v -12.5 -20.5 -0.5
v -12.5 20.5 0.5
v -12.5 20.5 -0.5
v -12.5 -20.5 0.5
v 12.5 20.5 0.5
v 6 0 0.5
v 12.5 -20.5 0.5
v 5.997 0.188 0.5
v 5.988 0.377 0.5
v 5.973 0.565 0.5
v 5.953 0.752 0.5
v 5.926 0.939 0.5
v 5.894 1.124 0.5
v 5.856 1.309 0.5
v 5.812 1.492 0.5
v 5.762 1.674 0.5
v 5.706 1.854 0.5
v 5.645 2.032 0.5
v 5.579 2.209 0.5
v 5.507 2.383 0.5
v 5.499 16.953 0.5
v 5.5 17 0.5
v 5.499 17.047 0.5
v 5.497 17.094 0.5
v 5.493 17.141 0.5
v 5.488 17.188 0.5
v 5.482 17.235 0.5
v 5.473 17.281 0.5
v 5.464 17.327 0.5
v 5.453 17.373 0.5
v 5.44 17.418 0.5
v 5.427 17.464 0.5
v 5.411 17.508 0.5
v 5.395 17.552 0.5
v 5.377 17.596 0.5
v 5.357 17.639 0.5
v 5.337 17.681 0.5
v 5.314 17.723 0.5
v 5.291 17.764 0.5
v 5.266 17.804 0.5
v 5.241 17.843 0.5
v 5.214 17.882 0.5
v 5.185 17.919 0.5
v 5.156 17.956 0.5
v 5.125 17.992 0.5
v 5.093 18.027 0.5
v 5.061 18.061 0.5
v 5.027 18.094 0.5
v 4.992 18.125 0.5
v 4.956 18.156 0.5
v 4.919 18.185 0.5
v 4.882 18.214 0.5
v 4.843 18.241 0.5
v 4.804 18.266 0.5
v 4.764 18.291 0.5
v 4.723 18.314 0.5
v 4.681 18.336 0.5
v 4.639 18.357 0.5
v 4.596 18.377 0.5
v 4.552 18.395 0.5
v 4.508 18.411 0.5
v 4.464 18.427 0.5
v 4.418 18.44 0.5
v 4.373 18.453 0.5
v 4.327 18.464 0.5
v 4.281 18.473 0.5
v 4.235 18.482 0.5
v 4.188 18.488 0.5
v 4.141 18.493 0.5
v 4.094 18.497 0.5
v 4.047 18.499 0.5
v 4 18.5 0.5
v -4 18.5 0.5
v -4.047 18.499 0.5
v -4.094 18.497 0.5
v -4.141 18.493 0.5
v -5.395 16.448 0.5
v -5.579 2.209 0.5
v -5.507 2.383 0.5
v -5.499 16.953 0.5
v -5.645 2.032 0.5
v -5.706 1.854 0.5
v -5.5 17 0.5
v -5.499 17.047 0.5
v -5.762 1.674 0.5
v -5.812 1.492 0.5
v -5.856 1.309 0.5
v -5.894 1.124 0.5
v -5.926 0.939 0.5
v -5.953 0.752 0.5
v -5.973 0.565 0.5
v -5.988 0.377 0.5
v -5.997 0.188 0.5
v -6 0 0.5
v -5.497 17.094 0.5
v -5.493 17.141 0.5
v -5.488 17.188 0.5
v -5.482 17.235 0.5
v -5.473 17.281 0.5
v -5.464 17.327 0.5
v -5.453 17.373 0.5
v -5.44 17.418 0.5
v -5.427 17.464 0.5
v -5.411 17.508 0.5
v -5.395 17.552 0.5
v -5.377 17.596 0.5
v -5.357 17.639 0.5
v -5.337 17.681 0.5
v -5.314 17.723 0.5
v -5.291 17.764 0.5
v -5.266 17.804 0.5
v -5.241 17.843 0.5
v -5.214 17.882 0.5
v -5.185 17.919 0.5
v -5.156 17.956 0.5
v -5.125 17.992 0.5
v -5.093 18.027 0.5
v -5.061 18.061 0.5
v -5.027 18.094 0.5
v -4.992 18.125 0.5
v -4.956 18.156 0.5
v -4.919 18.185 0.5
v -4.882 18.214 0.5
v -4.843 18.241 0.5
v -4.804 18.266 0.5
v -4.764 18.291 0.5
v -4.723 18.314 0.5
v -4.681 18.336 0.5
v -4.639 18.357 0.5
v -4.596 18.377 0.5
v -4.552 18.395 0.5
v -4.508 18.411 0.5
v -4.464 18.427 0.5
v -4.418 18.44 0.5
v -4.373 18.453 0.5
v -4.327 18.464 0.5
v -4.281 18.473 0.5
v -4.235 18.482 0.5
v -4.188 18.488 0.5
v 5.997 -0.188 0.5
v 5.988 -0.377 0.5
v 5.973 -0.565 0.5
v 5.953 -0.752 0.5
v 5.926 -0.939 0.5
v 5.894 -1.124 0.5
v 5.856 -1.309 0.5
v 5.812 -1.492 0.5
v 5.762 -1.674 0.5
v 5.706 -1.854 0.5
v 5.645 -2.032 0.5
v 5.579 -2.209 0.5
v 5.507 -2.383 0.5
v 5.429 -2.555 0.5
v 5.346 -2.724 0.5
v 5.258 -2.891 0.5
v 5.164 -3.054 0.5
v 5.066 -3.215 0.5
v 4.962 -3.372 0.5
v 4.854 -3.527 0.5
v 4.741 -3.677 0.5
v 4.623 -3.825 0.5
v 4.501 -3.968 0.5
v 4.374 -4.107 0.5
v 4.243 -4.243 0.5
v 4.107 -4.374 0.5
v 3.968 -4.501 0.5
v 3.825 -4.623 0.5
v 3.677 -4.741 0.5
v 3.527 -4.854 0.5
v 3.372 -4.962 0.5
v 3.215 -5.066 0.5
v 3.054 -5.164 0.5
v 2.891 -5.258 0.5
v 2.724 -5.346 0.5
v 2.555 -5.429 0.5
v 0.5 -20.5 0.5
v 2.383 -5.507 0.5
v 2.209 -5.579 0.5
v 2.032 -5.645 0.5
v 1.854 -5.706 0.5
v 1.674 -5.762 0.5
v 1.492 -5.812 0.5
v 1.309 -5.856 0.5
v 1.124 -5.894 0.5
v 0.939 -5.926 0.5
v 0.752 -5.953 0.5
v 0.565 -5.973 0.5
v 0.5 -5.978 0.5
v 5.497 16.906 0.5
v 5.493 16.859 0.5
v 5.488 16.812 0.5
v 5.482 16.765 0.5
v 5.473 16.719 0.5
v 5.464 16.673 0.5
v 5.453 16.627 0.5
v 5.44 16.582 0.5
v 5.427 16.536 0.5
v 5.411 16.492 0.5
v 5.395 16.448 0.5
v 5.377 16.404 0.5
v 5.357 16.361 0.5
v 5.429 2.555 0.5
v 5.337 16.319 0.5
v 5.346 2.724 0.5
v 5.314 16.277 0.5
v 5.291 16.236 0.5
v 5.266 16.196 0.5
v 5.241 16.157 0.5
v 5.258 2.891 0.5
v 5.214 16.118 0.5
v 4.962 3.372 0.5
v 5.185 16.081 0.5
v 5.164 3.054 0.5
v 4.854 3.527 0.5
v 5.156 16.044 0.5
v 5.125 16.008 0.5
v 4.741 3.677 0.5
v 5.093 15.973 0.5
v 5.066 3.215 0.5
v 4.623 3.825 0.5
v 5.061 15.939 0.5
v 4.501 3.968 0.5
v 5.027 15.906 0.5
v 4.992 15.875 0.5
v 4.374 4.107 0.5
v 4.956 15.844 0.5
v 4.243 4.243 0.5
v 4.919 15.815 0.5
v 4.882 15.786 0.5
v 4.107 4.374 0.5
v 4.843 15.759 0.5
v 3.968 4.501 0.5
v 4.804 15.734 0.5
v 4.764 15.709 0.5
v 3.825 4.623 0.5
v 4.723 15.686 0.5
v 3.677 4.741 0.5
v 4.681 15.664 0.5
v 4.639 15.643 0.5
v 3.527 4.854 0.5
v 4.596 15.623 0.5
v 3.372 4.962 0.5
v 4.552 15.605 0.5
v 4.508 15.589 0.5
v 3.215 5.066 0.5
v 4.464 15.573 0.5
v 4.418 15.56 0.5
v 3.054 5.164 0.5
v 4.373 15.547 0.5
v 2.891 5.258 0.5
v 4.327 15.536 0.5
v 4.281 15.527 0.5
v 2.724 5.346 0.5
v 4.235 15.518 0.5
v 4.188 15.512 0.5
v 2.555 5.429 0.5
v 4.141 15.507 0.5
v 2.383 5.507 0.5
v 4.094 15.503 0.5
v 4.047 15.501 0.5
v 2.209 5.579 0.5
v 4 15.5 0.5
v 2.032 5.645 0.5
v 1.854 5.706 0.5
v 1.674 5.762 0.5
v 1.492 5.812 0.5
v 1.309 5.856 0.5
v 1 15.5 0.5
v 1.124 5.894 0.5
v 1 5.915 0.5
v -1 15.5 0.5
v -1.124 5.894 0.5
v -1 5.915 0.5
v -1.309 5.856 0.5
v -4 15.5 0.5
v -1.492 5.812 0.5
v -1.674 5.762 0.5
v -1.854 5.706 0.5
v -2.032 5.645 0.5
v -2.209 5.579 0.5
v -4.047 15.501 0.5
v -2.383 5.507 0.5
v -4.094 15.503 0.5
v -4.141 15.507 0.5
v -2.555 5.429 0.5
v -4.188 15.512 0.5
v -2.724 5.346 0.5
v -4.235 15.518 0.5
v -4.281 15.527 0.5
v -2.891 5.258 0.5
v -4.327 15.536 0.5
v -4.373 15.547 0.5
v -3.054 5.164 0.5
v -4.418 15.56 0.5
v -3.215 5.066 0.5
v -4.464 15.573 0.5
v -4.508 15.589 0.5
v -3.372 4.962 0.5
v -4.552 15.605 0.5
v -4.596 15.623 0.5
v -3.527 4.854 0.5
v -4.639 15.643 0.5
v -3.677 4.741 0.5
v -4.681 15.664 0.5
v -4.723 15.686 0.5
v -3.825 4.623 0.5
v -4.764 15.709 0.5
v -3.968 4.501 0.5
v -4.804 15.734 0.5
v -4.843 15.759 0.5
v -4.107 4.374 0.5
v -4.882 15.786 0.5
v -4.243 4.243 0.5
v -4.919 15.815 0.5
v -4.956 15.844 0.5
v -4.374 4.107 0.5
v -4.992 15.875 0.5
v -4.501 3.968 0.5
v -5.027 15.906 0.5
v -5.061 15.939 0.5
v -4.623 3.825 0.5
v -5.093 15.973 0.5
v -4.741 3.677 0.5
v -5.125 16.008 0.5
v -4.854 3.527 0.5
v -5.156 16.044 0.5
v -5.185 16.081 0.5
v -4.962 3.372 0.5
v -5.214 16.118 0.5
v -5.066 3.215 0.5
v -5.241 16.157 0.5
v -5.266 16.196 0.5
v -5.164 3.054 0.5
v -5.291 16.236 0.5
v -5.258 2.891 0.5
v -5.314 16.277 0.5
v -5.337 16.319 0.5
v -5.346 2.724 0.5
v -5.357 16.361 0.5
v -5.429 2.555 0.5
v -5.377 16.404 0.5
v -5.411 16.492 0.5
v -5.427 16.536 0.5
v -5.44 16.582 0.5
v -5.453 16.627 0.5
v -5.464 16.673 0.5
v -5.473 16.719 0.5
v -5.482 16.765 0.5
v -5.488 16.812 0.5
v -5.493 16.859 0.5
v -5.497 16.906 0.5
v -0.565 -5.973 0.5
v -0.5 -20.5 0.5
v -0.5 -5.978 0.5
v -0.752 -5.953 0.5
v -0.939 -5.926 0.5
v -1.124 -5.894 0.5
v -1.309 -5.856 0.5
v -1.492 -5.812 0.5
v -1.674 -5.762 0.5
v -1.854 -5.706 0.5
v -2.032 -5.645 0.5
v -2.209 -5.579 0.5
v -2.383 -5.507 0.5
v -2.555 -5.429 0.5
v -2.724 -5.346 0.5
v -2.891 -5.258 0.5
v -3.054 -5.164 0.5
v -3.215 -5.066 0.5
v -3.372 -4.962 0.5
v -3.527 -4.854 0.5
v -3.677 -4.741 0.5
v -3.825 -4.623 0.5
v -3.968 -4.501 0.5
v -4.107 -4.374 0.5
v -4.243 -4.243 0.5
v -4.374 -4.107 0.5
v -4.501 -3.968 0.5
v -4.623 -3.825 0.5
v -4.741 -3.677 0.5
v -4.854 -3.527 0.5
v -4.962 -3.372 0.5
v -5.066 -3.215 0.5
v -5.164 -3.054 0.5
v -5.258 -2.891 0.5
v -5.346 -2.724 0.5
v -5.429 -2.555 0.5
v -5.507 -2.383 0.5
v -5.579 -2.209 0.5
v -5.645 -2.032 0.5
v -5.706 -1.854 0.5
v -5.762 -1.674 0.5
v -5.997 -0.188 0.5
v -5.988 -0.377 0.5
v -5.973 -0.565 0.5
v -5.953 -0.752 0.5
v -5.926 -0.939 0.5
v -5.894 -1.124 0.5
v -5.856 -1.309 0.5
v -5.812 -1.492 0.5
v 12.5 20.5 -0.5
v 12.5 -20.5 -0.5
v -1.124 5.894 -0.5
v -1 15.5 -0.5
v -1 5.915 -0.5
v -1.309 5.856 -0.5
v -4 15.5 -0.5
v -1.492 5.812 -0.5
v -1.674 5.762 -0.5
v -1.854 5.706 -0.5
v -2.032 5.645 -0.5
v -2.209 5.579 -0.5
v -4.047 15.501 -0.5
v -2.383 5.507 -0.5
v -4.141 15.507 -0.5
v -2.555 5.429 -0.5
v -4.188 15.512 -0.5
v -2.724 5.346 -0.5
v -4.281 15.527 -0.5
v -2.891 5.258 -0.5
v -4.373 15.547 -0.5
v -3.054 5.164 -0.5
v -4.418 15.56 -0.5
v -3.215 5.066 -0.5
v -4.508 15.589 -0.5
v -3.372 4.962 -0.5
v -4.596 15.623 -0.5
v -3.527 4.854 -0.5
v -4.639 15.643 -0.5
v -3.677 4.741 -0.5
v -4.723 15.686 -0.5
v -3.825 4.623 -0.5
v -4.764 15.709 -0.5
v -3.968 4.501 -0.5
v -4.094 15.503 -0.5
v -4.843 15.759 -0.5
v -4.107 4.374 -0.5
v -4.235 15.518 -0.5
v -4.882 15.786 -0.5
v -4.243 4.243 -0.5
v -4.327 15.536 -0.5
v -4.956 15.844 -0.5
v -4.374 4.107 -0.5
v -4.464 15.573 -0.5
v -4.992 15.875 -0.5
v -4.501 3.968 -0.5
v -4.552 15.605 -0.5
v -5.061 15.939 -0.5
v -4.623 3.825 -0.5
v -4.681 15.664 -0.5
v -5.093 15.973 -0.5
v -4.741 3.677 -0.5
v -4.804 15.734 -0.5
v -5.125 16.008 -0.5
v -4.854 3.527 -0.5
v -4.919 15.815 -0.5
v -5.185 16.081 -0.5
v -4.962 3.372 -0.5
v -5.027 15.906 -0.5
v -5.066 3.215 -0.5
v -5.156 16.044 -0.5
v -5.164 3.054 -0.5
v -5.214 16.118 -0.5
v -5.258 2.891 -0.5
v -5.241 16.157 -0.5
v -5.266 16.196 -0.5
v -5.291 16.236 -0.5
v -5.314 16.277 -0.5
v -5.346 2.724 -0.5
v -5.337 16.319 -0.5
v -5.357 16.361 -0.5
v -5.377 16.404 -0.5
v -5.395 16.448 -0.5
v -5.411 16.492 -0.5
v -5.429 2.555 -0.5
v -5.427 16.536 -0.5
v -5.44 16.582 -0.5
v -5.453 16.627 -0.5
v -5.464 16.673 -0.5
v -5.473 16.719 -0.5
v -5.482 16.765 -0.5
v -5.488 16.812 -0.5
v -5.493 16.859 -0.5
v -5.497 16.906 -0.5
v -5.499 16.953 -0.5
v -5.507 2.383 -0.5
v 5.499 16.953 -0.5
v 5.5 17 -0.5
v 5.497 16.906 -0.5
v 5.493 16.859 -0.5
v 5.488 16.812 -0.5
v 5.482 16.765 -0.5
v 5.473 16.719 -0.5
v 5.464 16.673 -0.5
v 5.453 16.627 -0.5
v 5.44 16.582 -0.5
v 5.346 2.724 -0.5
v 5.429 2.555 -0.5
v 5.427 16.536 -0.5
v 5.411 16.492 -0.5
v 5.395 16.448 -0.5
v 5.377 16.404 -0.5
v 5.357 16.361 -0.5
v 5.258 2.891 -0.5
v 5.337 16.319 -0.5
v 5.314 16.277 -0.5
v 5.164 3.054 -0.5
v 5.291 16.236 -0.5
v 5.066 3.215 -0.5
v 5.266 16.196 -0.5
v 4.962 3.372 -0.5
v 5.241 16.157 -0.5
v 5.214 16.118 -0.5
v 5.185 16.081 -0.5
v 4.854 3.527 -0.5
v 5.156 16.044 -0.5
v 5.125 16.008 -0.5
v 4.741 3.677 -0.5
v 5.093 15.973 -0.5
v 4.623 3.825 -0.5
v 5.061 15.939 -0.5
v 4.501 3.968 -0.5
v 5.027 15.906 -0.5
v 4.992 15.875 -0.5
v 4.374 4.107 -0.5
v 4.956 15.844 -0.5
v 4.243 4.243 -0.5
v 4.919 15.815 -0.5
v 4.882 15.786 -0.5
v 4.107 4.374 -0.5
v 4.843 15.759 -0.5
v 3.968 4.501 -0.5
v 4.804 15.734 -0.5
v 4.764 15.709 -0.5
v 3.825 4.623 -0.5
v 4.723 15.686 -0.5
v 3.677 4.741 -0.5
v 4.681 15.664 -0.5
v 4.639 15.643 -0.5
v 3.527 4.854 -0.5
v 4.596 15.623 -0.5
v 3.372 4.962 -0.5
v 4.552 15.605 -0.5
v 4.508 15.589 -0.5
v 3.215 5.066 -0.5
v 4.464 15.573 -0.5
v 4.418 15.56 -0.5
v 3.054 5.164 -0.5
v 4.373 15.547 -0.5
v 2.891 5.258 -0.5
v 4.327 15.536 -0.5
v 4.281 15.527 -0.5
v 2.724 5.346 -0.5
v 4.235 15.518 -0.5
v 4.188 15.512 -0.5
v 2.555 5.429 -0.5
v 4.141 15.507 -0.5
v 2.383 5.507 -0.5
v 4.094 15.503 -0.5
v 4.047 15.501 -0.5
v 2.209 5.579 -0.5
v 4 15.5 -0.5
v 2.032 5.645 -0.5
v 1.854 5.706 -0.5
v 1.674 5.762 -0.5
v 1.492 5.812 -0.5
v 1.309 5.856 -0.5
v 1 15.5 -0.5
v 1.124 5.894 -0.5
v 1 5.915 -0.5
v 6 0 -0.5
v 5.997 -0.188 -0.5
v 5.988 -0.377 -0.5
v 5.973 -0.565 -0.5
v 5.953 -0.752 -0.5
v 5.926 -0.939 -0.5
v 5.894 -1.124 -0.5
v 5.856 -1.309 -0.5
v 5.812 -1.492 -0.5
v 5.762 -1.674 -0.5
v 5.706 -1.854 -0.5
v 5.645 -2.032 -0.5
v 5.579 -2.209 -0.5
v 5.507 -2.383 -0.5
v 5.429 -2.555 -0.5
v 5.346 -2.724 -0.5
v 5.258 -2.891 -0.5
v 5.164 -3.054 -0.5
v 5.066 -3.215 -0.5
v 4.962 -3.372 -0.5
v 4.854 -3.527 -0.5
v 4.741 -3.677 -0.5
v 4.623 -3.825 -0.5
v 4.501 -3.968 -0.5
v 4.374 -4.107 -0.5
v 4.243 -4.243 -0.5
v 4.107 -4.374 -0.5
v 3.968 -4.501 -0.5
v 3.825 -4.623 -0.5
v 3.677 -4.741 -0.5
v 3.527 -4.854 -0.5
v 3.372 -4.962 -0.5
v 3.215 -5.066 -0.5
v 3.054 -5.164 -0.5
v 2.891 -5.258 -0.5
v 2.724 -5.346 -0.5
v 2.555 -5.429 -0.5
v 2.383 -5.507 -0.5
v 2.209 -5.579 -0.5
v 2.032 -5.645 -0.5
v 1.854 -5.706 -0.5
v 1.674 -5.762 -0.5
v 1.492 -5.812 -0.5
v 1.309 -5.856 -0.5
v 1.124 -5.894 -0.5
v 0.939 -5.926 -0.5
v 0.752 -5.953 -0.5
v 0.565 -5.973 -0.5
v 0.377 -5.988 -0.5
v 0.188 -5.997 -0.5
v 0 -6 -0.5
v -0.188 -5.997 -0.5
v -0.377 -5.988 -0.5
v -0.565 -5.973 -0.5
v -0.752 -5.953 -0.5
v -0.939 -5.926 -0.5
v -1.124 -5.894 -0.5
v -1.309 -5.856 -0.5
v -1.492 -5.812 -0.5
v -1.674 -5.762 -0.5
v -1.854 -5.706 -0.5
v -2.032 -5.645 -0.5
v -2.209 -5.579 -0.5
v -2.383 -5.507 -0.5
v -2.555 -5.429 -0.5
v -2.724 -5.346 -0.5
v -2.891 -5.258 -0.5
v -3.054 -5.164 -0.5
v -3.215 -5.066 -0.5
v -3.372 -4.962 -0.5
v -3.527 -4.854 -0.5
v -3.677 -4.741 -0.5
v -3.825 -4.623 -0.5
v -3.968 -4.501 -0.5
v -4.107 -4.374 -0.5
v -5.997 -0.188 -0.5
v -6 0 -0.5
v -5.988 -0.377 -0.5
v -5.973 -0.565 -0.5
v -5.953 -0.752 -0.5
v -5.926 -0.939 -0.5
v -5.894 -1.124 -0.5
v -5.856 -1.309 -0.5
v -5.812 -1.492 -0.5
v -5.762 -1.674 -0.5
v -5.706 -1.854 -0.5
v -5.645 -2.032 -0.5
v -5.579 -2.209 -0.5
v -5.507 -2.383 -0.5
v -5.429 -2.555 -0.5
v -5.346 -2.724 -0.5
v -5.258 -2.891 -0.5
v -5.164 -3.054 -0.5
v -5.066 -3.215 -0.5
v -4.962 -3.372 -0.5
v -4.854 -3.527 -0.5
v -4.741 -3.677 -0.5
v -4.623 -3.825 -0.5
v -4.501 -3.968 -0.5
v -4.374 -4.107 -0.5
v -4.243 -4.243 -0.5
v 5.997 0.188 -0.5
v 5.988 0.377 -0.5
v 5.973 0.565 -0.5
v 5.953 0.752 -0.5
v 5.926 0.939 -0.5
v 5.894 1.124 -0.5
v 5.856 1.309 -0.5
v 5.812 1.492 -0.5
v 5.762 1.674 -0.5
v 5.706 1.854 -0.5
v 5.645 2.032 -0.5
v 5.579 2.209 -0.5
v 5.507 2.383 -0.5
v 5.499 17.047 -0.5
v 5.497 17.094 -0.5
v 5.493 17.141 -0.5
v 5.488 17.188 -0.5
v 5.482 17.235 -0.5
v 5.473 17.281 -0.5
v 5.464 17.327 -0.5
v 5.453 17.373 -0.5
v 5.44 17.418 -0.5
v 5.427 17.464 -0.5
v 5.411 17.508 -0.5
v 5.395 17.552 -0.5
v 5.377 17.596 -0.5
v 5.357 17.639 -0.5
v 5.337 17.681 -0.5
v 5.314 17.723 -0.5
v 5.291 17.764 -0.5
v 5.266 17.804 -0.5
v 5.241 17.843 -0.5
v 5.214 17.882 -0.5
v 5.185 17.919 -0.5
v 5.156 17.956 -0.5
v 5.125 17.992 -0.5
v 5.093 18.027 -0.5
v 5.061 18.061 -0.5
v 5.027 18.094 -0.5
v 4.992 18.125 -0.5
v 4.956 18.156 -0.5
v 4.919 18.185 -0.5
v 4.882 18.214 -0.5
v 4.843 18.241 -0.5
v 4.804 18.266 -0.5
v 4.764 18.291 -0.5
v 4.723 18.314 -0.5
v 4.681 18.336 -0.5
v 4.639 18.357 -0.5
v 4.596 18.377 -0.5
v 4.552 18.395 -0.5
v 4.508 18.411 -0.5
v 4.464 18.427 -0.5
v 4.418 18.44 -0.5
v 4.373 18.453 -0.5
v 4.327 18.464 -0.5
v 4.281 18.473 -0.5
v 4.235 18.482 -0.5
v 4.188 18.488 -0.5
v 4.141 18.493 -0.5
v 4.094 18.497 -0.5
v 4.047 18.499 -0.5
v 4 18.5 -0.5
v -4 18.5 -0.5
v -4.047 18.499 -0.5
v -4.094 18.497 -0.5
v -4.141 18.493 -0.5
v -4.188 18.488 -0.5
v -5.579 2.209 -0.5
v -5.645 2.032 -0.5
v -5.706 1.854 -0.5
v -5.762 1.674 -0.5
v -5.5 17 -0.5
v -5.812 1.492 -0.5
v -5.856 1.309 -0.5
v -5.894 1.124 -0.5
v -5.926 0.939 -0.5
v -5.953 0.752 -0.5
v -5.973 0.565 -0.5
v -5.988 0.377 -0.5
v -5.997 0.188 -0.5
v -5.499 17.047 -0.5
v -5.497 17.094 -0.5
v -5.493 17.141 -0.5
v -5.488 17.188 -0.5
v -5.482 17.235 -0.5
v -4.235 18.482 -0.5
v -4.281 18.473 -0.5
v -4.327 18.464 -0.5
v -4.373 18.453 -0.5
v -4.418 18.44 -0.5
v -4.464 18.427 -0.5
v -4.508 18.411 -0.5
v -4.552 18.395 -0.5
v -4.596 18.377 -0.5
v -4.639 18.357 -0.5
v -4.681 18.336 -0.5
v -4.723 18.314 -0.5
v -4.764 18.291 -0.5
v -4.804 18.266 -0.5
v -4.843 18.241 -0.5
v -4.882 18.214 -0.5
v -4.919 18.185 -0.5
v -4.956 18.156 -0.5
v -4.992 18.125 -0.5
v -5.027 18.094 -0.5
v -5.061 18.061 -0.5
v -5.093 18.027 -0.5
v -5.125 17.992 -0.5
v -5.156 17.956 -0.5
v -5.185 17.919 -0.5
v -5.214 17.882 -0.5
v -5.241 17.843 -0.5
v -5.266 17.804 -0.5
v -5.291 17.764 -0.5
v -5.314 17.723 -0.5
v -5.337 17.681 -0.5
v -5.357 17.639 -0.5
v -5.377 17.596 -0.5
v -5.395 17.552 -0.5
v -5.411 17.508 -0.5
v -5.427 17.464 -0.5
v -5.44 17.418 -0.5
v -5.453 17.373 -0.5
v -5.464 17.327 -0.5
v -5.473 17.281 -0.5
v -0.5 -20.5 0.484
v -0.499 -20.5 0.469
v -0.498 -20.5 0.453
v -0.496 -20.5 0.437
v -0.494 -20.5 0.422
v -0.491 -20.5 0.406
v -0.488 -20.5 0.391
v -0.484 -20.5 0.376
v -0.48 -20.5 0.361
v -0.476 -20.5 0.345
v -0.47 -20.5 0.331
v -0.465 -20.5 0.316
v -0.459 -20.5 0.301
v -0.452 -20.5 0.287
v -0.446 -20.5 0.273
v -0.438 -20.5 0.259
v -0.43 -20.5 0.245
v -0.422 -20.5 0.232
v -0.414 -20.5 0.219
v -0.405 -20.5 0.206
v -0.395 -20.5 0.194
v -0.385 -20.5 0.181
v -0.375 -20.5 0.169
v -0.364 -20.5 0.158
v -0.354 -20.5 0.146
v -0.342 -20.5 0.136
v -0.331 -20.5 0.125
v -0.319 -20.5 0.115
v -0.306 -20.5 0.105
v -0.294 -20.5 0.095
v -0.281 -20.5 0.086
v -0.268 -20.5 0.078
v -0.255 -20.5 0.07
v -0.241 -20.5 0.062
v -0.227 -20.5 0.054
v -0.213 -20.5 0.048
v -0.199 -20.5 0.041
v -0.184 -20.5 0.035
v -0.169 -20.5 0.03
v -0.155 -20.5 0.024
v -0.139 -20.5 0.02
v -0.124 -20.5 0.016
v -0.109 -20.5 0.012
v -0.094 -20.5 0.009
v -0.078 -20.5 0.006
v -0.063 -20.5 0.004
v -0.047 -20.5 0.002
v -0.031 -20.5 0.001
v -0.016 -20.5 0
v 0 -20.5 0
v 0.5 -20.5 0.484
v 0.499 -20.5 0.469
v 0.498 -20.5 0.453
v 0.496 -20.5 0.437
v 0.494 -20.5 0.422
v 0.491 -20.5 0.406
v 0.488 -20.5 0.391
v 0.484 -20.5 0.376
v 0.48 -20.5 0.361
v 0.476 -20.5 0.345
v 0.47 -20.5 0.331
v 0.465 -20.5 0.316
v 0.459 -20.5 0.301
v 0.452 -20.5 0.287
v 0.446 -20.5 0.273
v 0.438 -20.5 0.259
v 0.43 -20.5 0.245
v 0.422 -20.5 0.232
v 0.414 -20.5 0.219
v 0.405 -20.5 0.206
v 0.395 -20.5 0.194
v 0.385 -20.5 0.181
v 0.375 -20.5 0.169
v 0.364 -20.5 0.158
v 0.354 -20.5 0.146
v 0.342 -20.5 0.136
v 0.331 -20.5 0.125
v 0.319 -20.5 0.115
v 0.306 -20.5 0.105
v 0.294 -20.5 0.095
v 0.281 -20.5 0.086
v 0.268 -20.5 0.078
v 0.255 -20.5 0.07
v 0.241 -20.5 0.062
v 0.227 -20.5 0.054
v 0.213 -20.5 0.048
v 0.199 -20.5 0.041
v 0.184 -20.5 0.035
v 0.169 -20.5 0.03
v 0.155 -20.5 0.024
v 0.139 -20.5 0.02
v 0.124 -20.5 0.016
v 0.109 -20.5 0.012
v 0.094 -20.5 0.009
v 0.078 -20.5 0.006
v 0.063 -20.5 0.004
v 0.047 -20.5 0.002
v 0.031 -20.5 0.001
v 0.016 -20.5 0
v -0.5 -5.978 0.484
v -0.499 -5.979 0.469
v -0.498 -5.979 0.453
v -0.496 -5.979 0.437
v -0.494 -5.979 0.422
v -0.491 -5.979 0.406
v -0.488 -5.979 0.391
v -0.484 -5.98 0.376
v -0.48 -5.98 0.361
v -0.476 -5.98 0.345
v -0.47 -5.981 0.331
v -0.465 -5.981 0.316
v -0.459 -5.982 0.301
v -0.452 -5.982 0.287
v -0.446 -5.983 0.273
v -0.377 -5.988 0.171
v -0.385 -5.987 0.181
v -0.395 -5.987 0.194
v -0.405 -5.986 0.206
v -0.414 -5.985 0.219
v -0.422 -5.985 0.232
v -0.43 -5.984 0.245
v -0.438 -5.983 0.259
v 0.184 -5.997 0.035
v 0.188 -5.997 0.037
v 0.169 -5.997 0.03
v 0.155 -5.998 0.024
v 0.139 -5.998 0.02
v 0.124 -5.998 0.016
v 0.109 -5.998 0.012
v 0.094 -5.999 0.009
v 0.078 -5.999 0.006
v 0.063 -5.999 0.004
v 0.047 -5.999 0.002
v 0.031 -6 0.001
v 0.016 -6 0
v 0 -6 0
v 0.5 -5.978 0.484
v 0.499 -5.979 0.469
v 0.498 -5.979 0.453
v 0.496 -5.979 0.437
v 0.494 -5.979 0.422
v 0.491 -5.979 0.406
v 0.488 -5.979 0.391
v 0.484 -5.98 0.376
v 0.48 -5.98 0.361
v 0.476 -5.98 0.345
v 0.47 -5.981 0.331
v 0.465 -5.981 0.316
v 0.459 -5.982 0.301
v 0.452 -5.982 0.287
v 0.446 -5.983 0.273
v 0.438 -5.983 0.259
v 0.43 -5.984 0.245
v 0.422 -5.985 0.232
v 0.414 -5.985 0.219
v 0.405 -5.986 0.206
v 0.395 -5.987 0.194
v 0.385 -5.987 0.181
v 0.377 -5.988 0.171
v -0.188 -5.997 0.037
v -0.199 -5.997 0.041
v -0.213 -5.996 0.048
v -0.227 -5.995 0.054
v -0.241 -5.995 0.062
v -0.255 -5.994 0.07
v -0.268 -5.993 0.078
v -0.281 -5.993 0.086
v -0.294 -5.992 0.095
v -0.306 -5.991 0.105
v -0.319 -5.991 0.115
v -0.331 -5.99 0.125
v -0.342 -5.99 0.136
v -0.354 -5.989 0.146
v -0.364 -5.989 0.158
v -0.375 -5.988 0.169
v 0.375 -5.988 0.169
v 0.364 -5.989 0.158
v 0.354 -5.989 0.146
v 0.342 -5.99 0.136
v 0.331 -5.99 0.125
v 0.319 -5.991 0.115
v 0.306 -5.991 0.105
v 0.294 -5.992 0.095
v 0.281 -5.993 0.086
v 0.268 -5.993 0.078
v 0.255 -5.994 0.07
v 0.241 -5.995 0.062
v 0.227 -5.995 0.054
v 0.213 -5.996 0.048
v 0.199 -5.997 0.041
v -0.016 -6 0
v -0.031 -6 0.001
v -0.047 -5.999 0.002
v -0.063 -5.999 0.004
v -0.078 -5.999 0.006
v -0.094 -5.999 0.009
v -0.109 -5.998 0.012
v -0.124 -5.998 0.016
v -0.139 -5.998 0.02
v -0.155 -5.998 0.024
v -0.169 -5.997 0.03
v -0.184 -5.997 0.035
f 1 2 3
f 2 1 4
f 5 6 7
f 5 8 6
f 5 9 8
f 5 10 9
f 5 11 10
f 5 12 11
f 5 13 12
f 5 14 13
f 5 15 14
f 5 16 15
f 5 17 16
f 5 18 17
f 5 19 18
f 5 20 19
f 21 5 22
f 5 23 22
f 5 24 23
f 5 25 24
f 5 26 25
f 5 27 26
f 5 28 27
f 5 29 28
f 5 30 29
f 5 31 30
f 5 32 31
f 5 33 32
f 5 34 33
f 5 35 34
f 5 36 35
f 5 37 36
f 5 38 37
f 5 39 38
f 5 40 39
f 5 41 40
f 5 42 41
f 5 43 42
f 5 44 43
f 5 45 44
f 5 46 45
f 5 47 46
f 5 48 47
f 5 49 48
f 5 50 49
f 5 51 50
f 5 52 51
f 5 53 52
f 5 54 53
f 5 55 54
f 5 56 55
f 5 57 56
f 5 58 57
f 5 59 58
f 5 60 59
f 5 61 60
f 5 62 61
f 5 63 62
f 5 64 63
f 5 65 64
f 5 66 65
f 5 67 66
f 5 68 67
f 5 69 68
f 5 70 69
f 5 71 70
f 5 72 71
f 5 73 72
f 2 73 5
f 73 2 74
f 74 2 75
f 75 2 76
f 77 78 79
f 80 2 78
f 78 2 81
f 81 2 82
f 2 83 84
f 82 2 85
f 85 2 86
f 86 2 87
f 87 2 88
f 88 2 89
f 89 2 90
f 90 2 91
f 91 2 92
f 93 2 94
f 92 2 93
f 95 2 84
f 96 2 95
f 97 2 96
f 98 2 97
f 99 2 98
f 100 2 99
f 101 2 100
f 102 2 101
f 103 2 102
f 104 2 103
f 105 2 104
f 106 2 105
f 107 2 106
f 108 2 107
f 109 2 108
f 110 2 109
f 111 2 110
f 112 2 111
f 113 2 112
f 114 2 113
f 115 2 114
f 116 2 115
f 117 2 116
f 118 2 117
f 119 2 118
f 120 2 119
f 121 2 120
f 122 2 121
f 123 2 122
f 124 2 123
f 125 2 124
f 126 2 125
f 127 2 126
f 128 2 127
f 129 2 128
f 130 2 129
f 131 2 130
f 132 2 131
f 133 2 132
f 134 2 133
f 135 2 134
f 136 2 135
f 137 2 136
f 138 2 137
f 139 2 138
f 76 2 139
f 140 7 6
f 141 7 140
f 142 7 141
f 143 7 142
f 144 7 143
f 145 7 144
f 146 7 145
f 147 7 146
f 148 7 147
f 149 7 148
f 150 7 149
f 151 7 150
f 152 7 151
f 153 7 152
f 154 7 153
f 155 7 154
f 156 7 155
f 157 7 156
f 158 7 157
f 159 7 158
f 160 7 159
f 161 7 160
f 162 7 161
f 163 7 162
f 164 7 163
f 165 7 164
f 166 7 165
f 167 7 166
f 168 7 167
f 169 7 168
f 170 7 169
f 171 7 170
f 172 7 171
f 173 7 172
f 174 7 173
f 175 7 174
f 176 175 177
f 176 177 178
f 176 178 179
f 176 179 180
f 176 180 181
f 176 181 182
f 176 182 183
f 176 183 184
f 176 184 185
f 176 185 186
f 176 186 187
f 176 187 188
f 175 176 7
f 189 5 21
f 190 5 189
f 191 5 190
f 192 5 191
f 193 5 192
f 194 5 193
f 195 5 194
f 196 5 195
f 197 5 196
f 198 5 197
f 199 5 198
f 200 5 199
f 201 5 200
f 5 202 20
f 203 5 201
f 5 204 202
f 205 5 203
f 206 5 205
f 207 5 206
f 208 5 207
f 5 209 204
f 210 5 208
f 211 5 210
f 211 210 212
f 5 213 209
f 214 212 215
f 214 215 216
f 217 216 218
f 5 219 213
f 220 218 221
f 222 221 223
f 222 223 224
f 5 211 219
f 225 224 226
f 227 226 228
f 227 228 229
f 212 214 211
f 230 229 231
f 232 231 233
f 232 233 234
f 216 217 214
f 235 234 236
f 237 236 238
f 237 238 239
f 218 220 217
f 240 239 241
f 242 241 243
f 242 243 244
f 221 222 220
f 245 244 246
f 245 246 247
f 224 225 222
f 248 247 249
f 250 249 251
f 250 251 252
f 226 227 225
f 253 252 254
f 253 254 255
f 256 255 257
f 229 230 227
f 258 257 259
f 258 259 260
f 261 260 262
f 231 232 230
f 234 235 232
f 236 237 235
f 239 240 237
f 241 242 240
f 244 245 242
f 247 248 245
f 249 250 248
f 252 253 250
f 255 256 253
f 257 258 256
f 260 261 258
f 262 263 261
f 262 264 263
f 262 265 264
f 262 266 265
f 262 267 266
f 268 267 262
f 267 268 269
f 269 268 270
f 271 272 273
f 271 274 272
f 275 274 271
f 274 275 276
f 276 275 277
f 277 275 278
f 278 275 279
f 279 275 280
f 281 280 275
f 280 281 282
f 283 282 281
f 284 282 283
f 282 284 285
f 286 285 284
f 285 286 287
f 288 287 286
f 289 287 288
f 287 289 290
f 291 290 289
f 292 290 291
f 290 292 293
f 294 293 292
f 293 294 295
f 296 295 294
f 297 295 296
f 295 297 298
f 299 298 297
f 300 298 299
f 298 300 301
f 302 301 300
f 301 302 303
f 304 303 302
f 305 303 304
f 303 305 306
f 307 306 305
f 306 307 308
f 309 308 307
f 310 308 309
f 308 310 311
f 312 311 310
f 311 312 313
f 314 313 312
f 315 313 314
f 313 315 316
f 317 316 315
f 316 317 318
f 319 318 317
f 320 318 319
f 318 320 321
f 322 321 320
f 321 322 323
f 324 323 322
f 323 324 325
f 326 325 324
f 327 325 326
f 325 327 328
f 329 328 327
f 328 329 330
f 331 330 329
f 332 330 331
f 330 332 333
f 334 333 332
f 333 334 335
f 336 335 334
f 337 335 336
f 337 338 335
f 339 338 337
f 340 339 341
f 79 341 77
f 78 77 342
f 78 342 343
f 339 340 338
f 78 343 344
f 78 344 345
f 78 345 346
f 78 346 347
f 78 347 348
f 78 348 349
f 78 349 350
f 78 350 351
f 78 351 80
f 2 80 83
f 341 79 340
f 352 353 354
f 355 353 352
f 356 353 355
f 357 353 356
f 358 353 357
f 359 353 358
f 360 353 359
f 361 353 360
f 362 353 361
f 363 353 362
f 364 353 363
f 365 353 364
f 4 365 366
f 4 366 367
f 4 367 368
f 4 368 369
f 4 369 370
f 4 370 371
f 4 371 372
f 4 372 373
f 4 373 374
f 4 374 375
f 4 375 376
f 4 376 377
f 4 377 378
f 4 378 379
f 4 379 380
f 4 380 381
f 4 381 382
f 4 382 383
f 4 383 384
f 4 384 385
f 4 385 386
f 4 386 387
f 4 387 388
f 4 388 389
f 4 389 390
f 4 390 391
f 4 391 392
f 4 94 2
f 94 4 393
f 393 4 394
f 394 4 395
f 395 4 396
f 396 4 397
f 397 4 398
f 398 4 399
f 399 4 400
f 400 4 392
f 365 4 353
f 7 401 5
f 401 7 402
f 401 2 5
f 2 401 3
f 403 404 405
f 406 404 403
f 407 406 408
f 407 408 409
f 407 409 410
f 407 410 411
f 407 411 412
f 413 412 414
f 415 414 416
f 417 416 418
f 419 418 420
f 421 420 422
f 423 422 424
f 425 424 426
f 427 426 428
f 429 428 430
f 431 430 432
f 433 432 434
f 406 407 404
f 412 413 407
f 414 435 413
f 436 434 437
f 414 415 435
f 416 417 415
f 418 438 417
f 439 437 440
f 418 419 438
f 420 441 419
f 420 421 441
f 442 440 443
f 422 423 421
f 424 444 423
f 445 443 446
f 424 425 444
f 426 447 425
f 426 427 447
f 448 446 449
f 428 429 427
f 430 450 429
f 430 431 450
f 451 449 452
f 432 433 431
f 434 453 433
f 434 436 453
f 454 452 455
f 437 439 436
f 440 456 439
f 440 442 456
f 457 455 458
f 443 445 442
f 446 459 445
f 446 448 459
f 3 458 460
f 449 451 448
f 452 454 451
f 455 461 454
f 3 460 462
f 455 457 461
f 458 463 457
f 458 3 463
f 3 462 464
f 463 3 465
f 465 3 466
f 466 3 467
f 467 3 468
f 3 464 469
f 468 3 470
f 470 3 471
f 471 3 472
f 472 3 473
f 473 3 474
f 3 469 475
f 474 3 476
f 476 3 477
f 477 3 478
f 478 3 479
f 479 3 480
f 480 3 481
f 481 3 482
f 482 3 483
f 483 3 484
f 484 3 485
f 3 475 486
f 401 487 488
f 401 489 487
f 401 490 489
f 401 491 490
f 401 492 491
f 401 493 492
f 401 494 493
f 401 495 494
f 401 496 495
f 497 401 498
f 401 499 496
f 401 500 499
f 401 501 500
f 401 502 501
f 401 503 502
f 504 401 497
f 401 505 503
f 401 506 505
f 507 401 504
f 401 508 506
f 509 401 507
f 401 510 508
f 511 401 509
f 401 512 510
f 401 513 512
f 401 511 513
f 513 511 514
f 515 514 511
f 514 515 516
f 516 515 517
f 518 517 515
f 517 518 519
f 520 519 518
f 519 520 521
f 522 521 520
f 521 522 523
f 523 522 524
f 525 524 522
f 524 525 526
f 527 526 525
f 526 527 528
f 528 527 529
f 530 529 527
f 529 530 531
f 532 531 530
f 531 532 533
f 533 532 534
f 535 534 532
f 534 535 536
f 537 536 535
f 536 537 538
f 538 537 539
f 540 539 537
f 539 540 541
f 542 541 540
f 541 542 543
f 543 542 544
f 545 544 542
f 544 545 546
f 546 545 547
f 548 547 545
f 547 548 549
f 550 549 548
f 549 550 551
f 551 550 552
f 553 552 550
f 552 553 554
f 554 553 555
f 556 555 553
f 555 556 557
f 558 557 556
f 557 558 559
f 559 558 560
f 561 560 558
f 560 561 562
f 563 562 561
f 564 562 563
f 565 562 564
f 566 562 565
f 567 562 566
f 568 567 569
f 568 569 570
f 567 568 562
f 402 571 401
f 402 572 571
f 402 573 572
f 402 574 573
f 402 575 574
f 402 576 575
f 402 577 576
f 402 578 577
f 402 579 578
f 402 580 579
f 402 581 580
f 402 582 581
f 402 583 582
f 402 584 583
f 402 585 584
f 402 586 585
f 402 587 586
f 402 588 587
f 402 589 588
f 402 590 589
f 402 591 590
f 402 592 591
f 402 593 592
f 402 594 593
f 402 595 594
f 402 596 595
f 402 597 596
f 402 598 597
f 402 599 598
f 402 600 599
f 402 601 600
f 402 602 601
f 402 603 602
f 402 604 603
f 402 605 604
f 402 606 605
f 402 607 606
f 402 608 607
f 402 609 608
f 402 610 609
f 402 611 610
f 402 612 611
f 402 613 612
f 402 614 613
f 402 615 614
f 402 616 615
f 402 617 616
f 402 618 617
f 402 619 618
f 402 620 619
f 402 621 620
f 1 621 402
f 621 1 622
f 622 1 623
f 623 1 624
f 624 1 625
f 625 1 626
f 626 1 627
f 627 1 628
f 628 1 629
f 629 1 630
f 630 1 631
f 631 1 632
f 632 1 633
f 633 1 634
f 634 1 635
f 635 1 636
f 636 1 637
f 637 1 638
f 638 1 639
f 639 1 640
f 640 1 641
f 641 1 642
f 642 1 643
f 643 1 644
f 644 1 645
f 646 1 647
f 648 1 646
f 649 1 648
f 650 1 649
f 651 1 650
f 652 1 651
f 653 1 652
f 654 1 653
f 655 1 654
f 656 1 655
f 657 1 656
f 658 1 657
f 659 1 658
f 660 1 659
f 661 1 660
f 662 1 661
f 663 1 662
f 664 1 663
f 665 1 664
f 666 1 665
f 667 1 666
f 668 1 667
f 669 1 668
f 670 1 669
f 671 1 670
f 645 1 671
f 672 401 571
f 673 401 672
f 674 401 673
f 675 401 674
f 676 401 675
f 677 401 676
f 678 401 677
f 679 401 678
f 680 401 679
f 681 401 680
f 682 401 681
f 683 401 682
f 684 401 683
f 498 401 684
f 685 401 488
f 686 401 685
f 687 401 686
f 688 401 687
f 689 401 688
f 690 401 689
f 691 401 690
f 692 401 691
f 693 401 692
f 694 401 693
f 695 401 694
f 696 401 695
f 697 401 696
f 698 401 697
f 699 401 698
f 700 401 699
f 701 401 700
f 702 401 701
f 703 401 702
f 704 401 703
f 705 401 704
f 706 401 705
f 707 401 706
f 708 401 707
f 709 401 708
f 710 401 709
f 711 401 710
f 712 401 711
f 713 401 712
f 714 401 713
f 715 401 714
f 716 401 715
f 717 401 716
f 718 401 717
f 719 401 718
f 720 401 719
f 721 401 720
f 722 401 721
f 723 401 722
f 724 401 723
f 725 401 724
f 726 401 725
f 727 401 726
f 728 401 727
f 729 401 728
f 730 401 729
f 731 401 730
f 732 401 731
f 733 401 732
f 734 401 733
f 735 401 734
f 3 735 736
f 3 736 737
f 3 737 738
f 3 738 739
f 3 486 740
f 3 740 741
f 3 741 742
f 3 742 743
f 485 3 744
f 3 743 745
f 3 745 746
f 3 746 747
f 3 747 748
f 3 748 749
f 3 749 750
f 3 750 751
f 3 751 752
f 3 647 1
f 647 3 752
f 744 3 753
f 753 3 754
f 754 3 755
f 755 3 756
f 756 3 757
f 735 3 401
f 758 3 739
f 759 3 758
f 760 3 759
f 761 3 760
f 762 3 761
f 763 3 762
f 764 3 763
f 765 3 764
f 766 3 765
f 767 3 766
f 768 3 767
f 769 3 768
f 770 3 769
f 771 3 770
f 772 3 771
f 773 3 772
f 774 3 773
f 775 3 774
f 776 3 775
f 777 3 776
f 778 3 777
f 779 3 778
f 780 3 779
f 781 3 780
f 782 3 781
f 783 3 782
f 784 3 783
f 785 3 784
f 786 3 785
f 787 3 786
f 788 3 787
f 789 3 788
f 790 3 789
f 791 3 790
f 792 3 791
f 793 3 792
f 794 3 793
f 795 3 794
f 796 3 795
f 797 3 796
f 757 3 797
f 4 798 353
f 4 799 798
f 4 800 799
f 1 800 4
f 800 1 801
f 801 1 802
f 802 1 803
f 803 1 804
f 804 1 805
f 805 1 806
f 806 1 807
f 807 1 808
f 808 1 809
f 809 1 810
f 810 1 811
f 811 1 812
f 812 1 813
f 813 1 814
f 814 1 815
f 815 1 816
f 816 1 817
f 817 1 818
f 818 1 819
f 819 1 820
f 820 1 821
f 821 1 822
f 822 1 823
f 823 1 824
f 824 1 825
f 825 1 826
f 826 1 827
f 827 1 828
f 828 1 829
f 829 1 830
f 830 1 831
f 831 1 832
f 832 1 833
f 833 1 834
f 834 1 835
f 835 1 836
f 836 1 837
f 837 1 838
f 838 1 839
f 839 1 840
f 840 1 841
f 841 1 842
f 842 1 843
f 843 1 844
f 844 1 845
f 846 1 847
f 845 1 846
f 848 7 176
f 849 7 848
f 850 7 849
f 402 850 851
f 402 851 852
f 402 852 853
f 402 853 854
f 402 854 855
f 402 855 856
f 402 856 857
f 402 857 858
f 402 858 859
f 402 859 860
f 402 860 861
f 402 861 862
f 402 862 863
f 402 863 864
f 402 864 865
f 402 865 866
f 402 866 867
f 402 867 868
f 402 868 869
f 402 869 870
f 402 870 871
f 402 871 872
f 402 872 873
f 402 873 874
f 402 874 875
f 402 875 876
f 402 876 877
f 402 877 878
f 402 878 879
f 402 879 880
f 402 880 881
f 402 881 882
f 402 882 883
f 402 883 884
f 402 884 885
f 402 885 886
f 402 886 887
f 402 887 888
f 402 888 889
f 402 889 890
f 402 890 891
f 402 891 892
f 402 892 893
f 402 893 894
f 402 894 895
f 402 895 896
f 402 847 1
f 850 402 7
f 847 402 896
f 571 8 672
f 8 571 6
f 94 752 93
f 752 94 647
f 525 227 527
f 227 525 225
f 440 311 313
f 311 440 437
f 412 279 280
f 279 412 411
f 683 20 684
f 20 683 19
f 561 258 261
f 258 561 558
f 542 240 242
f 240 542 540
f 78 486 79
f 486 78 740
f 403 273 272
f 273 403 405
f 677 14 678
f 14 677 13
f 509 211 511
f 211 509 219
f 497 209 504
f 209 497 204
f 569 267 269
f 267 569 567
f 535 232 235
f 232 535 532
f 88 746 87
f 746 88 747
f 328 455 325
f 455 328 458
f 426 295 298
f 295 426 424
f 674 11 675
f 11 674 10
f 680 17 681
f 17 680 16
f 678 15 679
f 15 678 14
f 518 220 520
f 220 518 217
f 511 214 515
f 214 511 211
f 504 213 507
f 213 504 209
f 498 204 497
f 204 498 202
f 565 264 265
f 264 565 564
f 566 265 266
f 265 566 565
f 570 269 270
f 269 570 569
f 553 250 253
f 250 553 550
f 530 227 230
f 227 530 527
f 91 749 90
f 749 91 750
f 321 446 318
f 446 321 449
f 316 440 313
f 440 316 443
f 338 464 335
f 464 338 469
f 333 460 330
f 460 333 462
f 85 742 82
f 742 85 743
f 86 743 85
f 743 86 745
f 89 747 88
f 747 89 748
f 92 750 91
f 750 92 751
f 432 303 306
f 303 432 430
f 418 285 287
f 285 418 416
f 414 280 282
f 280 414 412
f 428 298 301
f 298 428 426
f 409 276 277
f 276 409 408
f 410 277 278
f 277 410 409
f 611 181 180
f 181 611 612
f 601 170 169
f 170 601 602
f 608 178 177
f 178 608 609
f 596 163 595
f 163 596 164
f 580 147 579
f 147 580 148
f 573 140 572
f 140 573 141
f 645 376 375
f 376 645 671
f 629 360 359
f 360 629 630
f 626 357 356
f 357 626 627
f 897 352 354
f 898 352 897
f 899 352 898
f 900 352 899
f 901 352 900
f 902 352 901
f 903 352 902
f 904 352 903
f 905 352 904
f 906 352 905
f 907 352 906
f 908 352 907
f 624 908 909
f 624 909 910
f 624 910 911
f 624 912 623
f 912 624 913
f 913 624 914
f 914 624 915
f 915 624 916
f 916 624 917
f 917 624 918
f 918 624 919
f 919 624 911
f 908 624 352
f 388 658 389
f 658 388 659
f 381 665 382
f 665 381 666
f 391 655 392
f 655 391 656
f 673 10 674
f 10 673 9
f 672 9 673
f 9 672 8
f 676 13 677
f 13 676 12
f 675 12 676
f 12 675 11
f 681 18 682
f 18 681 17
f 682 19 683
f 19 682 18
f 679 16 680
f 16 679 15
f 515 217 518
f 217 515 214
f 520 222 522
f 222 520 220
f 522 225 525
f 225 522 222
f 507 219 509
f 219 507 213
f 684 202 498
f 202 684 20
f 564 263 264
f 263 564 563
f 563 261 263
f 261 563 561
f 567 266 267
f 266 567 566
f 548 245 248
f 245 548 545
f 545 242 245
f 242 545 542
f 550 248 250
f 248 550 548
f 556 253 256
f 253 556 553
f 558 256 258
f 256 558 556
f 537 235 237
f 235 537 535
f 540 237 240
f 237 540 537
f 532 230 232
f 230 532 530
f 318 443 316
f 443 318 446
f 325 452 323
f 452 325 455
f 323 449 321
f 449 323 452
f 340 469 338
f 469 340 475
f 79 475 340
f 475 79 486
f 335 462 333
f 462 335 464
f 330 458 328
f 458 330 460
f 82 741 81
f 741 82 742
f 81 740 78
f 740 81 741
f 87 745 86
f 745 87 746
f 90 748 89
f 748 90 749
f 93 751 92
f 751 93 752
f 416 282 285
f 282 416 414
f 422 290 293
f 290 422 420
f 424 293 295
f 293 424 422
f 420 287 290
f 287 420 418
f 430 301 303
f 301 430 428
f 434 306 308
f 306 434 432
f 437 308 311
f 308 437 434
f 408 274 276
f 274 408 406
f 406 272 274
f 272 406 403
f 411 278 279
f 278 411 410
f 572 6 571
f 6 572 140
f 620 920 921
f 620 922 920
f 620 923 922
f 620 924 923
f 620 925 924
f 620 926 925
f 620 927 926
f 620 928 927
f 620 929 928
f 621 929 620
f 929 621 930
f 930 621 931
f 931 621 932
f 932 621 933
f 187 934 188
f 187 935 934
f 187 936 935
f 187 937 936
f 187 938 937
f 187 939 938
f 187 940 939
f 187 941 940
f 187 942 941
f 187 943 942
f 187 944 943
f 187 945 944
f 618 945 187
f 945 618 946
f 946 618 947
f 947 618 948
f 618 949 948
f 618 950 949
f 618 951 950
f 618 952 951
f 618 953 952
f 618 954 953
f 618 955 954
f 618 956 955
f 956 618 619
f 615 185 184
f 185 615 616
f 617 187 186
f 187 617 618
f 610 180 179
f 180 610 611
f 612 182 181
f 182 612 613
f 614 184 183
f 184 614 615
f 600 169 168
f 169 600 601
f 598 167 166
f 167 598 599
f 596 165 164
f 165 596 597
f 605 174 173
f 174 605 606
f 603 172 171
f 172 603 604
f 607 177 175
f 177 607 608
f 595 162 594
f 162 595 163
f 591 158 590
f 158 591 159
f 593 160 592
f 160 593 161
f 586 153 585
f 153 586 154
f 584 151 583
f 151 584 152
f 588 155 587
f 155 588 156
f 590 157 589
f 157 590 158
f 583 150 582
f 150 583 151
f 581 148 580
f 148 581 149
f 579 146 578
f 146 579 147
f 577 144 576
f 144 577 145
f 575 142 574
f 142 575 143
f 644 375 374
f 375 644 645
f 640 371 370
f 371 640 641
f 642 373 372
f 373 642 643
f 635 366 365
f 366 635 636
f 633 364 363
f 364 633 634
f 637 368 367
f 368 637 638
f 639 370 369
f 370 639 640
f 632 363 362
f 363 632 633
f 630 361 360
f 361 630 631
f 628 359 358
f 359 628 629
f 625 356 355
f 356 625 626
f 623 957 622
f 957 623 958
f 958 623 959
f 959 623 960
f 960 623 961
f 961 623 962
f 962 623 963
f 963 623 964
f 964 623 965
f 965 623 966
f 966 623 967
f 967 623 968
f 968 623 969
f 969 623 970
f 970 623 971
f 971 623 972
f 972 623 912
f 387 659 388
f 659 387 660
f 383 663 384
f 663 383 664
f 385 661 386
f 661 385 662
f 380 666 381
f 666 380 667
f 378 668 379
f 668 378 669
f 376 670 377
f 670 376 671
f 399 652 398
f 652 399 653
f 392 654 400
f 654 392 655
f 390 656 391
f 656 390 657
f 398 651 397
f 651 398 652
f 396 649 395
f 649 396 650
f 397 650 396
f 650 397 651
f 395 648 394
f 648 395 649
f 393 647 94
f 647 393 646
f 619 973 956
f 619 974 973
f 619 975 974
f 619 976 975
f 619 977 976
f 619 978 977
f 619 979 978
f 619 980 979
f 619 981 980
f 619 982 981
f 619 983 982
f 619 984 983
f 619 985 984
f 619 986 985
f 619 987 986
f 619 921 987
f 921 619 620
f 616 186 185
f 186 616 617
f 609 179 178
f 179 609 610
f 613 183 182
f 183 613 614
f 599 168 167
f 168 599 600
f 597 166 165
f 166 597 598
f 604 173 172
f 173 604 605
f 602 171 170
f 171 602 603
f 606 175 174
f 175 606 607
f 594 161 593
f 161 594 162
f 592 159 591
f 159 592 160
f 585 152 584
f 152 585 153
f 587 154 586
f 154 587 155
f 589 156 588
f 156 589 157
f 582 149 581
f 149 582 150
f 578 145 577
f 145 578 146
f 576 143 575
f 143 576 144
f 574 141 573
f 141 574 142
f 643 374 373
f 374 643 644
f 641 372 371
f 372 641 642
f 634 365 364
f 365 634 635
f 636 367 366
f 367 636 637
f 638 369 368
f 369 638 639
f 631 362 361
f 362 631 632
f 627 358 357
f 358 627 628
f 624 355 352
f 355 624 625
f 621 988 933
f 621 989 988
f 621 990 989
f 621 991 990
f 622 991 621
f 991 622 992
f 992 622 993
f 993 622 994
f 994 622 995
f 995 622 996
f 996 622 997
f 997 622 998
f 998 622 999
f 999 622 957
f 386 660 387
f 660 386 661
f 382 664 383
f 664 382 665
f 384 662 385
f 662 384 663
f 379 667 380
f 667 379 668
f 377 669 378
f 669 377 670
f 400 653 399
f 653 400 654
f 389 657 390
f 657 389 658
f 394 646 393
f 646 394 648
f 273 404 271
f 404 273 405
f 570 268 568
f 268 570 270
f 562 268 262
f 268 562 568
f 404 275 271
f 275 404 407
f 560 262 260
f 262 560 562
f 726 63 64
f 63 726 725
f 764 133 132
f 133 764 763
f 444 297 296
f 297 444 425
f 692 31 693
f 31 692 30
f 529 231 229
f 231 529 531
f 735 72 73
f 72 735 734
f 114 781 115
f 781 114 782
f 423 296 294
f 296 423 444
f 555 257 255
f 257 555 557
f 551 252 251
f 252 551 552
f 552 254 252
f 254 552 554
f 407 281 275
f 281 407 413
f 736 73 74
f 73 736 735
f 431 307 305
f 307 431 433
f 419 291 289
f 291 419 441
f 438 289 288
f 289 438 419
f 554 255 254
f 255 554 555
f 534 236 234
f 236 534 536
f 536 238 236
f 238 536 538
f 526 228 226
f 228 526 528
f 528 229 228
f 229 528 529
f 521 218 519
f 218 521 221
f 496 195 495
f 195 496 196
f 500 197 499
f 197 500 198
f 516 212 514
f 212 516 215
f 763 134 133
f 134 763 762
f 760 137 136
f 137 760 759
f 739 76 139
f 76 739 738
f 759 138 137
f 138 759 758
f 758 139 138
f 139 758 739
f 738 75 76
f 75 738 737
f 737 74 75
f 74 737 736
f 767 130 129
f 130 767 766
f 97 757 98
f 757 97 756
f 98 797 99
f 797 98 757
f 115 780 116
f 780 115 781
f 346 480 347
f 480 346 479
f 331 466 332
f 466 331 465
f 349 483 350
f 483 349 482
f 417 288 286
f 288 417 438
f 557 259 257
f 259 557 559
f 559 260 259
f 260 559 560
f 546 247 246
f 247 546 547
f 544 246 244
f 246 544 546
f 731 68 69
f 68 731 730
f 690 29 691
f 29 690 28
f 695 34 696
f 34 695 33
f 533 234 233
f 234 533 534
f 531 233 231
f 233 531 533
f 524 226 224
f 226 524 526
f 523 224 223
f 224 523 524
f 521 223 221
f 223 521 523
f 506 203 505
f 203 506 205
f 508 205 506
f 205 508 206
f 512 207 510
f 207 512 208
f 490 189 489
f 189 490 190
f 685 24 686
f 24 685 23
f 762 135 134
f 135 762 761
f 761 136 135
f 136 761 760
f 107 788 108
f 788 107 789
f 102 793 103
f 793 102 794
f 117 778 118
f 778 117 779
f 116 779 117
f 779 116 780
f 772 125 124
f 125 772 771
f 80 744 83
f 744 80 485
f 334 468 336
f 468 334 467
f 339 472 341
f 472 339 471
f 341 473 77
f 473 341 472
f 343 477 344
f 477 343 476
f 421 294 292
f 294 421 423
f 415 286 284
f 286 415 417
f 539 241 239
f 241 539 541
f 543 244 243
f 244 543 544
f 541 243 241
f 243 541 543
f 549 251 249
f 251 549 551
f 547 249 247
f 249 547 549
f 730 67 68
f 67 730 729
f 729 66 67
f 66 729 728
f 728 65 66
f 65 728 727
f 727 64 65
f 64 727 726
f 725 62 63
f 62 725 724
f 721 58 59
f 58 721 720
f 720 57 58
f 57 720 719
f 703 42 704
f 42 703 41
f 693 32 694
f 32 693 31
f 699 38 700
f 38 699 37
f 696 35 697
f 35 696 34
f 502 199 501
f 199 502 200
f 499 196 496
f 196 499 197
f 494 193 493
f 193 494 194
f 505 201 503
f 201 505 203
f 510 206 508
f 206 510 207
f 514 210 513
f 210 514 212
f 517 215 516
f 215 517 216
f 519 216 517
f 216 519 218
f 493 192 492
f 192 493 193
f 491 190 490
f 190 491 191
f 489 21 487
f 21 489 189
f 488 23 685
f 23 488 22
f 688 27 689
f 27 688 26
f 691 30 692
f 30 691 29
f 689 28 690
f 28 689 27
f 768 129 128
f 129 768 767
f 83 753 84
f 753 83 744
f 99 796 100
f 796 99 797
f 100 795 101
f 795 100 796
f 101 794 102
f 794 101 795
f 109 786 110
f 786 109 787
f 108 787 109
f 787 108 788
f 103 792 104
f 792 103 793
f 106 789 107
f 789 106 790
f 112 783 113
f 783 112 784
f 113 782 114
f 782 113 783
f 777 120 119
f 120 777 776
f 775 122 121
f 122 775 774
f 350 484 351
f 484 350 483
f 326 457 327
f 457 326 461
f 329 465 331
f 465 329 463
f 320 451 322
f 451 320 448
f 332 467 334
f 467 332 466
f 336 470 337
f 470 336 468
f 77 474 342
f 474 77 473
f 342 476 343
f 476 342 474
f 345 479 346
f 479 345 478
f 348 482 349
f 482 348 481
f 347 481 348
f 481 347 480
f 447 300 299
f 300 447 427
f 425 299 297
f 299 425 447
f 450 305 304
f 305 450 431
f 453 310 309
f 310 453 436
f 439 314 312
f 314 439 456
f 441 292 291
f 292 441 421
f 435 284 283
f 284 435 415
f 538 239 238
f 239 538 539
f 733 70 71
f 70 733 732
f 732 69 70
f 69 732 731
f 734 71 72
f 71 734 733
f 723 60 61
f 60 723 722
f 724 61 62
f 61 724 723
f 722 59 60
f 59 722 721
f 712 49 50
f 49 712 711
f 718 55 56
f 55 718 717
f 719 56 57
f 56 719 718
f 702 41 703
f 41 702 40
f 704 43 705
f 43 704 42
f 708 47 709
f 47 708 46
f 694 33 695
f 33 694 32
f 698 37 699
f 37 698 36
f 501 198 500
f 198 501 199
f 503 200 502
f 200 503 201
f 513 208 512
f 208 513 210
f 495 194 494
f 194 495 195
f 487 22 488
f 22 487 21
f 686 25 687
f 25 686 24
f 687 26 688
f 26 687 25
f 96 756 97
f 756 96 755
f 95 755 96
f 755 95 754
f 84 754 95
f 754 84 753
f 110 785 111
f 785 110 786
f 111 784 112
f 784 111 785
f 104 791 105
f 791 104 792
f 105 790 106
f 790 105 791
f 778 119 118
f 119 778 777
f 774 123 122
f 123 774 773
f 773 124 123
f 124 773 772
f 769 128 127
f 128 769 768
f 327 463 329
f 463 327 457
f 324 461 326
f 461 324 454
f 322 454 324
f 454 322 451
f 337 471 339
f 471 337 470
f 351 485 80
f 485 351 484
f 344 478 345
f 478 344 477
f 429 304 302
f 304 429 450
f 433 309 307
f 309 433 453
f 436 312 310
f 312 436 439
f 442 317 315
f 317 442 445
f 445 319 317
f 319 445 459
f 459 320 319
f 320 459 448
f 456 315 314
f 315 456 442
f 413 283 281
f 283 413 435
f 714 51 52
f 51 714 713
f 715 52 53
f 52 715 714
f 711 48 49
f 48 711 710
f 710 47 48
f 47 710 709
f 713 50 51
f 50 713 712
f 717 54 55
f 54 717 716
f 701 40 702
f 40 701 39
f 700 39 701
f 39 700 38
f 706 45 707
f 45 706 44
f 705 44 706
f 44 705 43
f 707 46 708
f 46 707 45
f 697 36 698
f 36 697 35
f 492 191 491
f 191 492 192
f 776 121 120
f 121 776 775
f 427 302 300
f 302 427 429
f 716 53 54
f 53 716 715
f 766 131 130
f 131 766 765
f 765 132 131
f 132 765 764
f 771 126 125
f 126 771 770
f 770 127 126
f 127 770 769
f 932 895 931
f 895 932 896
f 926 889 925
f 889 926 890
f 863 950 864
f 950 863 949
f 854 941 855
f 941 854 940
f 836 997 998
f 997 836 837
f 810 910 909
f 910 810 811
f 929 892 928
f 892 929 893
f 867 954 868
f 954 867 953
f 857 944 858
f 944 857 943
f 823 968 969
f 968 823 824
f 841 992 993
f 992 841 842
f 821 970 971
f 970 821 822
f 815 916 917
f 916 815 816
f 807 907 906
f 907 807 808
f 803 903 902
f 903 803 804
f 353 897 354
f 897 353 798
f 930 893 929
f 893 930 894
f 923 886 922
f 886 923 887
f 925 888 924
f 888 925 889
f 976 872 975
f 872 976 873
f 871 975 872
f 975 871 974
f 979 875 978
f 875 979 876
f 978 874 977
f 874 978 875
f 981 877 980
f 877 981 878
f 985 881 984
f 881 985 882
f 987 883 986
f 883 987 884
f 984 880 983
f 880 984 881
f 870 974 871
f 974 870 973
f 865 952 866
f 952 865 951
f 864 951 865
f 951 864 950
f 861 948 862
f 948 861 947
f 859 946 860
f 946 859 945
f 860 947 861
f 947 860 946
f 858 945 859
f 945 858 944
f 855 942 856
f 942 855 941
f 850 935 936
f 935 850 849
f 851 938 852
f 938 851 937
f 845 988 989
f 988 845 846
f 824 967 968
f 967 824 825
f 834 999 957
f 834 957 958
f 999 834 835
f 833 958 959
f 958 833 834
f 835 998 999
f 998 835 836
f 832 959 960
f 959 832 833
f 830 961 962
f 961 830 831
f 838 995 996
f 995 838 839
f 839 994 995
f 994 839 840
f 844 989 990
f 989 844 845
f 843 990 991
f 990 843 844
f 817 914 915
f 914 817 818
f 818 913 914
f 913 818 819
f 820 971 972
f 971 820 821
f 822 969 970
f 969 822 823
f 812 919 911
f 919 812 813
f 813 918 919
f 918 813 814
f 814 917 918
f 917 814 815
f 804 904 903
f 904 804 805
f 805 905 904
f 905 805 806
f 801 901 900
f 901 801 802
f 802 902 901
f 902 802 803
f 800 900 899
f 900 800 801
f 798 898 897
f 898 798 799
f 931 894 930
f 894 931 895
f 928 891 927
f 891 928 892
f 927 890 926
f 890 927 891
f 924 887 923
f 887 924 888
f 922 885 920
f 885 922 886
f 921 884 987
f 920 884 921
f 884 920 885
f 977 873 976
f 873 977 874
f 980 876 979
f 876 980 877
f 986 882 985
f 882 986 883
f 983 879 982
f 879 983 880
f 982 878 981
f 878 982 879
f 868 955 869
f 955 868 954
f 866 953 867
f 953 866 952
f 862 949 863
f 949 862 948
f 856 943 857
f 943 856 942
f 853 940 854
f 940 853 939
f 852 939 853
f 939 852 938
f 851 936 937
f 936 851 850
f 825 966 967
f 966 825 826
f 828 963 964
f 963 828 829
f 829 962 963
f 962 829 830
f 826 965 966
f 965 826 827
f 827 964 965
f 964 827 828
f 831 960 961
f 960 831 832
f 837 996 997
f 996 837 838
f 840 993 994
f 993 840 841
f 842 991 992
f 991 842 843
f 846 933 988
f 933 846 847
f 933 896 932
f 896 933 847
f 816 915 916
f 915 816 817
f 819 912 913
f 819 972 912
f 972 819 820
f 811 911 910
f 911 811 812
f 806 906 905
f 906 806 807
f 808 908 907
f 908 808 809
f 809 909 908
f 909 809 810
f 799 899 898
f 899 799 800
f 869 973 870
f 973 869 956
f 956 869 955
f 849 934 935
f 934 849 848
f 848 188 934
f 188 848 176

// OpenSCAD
//CAPA1
$fn=200;
largo=41;
ancho=25;
alto=1;
d_cir=12;
ancho_c1=2;
largo_c1=11;

ancho_c2=3;
largo_c2=8;

difference(){
    cube([ancho,largo,alto],center=true);
    cylinder(h=alto,r=d_cir/2, center = true);
    translate([0,d_cir-2,0])
    {
        cube([ancho_c1,largo_c1,alto],center=true);
    }
    translate([0,d_cir/2+largo_c1,0])
    {
        hull()
        {
            cube([largo_c2,ancho_c2,alto],center=true);
            translate([ancho_c2+1,0,0])
            {
                cylinder(h=alto,r=1.5, center = true);
            }
            translate([-ancho_c2-1,0,0])
            {
                cylinder(h=alto,r=1.5, center = true);
            }
        }
    }
    rotate([90,0,0]){
        translate([0,0.5,d_cir+2])
        {
            cylinder(h=20,r=0.5, center = true);
        }
    }

}
